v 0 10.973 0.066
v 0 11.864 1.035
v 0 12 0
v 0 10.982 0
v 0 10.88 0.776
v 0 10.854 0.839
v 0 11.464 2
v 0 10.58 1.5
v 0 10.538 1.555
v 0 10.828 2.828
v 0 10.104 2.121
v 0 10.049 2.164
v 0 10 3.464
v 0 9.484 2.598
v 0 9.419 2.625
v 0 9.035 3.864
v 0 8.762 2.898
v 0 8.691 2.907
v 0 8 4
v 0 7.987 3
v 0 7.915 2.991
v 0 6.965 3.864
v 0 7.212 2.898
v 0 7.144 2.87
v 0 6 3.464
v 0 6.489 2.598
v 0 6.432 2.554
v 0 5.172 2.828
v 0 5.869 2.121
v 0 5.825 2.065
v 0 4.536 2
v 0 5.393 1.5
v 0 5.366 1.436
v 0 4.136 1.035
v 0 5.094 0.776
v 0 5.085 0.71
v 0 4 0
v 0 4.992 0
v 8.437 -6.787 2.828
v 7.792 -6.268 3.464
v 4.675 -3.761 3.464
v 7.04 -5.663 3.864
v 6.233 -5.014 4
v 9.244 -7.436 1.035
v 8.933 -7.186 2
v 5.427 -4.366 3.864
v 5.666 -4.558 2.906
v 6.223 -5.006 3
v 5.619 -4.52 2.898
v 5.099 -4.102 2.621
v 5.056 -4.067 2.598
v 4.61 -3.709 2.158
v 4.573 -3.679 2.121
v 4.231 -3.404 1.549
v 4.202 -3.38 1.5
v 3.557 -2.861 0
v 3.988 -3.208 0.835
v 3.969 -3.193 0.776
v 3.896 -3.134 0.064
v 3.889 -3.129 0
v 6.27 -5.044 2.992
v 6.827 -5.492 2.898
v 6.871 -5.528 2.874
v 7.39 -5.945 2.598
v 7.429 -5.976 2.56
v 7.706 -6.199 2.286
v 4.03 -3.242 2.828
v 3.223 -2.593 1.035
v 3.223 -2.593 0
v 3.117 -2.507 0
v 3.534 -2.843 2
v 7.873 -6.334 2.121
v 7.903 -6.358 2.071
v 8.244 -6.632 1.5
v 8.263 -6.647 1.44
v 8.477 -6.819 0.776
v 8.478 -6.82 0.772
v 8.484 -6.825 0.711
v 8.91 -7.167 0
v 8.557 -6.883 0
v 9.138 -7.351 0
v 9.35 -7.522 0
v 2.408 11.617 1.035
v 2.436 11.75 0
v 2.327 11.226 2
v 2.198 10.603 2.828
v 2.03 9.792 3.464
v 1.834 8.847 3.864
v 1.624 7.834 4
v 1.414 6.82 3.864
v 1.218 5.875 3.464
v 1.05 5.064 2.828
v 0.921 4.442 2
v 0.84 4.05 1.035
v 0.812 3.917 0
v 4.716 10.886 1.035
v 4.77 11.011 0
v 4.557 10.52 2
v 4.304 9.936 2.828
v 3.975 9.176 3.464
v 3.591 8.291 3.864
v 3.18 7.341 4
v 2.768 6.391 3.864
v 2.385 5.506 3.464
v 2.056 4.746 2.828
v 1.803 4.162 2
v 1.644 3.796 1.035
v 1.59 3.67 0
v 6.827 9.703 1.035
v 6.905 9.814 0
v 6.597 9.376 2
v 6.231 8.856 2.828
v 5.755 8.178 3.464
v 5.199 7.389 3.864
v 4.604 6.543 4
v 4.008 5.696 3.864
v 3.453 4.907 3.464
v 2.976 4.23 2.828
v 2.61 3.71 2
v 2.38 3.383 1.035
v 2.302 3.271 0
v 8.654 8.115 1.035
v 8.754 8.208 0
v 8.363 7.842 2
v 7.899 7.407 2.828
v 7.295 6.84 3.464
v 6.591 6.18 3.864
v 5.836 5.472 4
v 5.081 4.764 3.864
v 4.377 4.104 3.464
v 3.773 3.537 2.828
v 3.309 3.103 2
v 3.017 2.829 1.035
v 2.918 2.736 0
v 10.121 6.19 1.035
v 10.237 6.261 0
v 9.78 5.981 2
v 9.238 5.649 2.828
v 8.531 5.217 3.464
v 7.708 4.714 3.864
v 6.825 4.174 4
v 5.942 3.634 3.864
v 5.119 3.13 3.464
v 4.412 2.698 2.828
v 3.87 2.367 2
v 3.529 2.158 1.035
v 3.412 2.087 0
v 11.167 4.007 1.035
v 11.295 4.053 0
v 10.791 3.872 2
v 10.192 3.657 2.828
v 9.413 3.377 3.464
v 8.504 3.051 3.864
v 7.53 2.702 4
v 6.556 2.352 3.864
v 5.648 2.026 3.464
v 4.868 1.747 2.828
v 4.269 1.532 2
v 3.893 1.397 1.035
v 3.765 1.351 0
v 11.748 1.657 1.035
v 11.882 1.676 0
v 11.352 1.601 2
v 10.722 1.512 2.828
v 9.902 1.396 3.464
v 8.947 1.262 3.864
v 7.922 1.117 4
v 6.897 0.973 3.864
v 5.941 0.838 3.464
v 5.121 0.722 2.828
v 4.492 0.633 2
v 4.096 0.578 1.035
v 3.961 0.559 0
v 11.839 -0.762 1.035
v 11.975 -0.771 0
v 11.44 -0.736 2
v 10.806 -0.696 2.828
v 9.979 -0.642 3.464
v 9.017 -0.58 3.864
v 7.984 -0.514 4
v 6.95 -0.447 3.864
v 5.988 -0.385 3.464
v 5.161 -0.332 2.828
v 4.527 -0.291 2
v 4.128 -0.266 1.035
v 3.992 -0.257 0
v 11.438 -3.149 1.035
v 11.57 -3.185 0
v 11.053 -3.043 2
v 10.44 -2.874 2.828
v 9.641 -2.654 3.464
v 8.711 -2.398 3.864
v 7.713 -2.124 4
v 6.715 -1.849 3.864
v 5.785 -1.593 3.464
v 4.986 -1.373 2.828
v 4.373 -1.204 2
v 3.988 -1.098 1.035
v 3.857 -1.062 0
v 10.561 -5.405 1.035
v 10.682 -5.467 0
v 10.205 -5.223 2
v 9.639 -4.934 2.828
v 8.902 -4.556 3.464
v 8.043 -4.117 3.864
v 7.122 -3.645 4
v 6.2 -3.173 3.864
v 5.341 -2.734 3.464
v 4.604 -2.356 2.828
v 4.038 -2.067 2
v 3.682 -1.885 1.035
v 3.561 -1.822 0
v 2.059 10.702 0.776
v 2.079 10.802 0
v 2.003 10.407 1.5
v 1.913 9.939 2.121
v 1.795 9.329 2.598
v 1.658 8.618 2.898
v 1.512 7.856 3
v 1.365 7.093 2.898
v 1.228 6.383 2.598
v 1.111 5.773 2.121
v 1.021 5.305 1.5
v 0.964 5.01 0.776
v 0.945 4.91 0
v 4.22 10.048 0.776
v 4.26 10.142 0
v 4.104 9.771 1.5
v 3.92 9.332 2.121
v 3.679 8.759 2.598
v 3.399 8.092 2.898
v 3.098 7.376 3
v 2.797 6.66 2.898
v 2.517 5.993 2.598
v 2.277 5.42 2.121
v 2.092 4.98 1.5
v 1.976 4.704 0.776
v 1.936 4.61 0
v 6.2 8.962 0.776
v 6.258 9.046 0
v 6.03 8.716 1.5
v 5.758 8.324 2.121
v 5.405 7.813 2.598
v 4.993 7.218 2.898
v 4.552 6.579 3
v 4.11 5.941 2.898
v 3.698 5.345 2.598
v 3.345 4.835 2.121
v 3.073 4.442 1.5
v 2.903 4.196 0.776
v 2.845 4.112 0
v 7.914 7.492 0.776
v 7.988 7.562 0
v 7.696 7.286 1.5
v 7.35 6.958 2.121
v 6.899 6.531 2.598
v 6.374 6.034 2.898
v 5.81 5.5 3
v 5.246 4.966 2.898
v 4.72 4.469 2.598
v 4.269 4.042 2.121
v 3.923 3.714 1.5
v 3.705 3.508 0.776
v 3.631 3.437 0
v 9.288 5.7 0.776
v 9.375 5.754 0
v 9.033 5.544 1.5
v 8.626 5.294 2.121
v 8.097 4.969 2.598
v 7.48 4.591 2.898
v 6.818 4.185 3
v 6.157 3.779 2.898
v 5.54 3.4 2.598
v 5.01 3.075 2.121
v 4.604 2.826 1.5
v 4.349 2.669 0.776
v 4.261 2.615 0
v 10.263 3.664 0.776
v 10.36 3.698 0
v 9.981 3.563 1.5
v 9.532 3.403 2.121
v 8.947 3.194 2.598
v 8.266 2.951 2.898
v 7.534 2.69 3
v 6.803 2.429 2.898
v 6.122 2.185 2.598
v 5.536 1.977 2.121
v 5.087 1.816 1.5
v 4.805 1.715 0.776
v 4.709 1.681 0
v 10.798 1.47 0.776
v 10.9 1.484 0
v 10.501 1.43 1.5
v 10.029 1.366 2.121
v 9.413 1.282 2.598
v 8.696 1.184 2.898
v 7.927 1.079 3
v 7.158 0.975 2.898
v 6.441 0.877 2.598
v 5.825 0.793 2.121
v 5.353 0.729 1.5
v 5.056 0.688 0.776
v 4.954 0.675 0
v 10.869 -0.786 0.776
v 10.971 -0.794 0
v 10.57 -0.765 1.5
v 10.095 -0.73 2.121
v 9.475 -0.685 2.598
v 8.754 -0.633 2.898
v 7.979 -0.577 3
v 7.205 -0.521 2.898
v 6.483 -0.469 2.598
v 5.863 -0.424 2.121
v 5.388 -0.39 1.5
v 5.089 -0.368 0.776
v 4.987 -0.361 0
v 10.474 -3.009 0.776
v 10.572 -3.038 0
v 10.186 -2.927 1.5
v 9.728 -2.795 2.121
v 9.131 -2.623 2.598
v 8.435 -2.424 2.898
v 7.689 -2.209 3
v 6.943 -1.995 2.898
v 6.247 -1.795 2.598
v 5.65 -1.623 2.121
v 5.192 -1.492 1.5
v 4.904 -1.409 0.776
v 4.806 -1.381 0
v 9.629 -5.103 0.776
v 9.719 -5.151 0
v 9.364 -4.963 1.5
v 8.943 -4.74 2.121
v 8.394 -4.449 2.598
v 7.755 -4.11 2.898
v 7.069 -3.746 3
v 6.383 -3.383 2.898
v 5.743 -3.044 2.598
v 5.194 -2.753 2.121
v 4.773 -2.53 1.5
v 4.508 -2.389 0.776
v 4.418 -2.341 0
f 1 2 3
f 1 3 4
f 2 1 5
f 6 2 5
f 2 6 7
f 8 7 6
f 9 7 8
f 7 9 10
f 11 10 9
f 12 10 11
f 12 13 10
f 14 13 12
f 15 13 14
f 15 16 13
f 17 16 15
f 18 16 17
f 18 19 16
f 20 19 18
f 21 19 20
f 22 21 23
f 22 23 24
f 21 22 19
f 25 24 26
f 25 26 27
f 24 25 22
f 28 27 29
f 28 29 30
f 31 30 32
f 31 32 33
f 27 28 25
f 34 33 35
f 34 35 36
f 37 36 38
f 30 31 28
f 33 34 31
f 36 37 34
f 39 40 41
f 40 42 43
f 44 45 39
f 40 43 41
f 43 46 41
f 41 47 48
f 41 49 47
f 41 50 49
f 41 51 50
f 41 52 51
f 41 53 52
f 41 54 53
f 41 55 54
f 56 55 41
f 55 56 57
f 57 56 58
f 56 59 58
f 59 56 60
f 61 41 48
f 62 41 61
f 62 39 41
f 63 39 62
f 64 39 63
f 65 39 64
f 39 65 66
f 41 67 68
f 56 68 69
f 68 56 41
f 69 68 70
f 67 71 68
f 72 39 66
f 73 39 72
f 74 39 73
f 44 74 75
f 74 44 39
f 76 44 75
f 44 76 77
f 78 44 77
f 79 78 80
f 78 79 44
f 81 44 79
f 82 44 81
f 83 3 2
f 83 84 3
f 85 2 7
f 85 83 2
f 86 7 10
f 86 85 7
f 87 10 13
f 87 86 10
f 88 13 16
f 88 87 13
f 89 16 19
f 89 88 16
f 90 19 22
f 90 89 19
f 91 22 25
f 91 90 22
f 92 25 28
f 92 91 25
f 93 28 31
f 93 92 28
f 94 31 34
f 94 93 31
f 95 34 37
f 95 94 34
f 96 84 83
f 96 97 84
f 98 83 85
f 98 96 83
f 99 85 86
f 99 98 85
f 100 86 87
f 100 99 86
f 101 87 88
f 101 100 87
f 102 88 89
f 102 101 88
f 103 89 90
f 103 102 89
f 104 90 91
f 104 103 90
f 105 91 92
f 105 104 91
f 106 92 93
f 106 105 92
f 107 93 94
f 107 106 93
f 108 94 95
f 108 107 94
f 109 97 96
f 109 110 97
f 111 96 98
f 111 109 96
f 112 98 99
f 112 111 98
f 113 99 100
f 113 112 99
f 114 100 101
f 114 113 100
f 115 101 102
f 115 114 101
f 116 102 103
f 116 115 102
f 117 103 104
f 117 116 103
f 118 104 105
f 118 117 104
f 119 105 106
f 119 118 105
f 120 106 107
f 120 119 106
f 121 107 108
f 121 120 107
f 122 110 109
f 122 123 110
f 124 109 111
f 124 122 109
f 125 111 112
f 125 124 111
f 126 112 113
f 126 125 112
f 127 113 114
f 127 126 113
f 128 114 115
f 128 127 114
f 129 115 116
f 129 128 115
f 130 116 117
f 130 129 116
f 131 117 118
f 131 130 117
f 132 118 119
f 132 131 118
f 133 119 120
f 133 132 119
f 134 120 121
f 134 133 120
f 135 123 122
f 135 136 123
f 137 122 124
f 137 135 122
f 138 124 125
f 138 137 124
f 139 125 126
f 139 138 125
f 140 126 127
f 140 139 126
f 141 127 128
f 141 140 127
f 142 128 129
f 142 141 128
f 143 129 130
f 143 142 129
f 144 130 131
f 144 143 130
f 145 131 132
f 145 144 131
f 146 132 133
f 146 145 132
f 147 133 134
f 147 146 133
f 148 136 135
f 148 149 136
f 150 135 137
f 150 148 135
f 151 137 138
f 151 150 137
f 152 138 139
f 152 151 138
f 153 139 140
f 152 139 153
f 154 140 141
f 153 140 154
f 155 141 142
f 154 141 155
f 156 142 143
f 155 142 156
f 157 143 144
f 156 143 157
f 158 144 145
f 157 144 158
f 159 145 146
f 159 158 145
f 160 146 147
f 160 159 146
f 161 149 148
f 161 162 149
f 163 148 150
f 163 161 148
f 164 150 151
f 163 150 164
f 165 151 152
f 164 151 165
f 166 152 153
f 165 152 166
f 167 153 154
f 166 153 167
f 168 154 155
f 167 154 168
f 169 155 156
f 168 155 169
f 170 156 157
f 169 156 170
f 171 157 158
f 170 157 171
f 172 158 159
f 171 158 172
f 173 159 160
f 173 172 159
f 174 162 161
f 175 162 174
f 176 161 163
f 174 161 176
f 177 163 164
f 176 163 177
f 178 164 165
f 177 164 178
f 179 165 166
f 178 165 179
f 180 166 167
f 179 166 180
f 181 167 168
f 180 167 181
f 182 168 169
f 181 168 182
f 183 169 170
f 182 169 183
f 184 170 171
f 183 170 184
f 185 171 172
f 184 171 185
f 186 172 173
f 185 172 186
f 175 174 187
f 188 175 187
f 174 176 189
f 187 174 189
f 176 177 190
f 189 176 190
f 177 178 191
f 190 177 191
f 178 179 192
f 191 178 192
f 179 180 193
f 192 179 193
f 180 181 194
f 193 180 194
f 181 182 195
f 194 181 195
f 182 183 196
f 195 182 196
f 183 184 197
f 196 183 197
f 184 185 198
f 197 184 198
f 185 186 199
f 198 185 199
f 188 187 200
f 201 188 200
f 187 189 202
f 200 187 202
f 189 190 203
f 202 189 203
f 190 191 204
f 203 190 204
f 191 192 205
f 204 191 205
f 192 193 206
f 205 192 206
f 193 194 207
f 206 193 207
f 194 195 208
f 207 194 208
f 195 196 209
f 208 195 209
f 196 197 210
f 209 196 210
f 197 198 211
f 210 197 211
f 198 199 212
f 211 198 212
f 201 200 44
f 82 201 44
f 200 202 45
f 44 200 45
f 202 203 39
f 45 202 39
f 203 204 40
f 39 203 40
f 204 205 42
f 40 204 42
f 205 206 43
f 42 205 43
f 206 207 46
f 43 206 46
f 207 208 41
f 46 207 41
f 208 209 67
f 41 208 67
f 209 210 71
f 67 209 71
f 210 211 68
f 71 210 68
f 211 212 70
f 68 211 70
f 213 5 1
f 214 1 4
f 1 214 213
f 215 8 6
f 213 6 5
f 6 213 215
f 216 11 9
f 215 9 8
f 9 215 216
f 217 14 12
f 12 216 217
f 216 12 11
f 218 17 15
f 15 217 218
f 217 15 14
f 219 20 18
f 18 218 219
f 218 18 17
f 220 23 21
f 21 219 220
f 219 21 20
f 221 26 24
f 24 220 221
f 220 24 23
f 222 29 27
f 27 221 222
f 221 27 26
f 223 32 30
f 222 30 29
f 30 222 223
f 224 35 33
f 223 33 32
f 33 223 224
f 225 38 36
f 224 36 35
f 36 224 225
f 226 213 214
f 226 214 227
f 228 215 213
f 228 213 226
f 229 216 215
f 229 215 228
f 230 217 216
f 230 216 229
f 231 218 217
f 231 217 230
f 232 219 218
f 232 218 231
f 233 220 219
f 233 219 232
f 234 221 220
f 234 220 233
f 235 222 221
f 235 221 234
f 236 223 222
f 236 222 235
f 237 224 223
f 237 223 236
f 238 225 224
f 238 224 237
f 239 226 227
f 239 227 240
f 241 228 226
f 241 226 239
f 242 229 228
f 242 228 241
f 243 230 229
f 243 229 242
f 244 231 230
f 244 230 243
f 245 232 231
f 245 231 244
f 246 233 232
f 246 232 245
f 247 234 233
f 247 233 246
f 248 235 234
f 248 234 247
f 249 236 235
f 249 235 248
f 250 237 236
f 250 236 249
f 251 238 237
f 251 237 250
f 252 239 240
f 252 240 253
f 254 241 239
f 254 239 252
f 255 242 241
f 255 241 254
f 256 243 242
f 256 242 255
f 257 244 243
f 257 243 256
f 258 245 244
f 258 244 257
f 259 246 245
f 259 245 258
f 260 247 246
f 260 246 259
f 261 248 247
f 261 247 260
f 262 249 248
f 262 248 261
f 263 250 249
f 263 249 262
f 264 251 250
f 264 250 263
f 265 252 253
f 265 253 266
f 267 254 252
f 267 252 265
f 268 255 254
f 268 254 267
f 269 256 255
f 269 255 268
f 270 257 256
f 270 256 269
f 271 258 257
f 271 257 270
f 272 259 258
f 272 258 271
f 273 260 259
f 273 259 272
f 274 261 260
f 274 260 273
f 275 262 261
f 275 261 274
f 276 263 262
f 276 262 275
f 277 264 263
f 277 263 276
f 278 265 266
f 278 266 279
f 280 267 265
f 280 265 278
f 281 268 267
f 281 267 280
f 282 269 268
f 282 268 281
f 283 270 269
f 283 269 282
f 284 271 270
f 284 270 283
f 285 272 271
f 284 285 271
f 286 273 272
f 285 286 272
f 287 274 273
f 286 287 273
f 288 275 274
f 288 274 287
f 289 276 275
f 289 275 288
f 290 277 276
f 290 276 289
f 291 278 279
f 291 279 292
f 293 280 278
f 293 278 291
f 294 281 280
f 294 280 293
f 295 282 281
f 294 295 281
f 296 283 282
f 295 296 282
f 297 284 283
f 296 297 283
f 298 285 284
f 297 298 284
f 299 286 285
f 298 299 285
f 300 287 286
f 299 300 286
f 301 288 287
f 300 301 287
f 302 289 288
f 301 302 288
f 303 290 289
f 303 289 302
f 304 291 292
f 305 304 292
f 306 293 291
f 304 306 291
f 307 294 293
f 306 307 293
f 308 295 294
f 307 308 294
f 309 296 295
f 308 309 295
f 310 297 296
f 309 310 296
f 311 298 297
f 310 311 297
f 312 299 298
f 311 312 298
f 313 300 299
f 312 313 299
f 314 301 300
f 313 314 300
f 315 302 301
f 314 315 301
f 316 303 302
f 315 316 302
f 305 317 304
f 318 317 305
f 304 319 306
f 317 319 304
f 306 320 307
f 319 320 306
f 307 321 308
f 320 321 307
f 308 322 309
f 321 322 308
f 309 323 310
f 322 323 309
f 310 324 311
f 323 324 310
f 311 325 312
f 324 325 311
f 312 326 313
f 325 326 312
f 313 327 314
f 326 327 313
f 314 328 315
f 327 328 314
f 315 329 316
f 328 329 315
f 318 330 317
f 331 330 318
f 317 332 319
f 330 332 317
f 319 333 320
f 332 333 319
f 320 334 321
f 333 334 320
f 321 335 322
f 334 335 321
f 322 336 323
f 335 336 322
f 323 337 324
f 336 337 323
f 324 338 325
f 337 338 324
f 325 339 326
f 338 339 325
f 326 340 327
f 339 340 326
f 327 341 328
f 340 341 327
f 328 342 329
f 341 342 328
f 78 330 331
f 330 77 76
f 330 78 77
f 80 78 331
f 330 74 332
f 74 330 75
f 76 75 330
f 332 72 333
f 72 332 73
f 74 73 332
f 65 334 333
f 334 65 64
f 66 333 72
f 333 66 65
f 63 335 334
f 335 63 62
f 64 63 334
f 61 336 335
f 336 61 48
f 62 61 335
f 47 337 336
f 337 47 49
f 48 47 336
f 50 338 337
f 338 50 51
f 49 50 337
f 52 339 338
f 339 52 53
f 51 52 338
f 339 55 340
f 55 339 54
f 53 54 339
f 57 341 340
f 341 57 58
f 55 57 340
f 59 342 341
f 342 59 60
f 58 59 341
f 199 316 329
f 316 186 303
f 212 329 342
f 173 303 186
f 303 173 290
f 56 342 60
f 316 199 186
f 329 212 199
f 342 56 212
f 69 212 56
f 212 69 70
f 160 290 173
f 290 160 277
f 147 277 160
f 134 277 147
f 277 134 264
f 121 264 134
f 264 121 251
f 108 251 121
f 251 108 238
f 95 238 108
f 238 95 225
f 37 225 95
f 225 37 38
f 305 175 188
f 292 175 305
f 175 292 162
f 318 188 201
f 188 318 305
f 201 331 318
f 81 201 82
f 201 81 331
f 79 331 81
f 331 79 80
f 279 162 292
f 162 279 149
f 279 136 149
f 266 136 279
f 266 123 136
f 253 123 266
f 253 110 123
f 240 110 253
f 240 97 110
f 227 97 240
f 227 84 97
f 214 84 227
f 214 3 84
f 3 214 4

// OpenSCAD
// file: ../build_environments.scad
// build_environments.scad: modules to build level sections
//

module pool(diameter=10.0, wall_height=2.0, step_width=3.0, connections=[])
{
    difference() {
        union() {
        difference() {
            cylinder(h=0.5,r1=diameter+step_width,r2=diameter+step_width,$fn=48);
            translate([0,0,-0.1])
                cylinder(h=0.7,r1=diameter,r2=diameter,$fn=48);
        }
        difference() {
            cylinder(h=wall_height,r1=diameter+step_width+1.0,r2=diameter+step_width+1.0,$fn=48);
            translate([0,0,-0.1])
                cylinder(h=wall_height+0.2,r1=diameter+step_width,r2=diameter+step_width,$fn=48);
        }
        }
    
        for (c = connections)
        {
            rotate([0,90,0]) {
                angle = atan2(c[1],c[0]);
                rotate([-angle,0,0]) {
                    cylinder(h=diameter+5.0,r1=c[2],r2=c[2],$fn=48);
                }
            }
        }
    }
}

module straight(length=10.0, width=2.0, dy1=0.0, dy2=0.0, dz=0.0)
{
    dims = [0, 0, 0, 0, 0, (dz/length)];
    matrix = [
        [ 1, dims[0], dims[1], 0 ],
        [ dims[2], 1, dims[4], 0 ],
        [ dims[5], dims[3], 1, 0 ],
        [ 0, 0, 0, 1 ]
    ];
    multmatrix(matrix)
    difference() {
        translate([dy1,0,0])
        union() {
            rotate([0,90,0]) {
                difference() {
                    cylinder(h=(length-dy1-dy2),r1=width+1.0,r2=width+1.0,$fn=24);
                    translate([0,0,-0.1])
                        cylinder(h=(length-dy1-dy2+0.2),r1=width,r2=width,$fn=24);
                }
                difference() {
                    cylinder(h=1.0,r1=width+2.0,r2=width+2.0,$fn=24);
                    translate([0,0,-0.1])
                        cylinder(h=1.2,r1=width,r2=width,$fn=24);
                }
                translate([0,0,(length-dy1-dy2)-1.0]) {
                    difference() {
                        cylinder(h=1.0,r1=width+2.0,r2=width+2.0,$fn=24);
                        translate([0,0,-0.1])
                            cylinder(h=1.2,r1=width,r2=width,$fn=24);
                    }
                }
            }
        }
        translate([0,0,-(2*width+4.0)/2])
            cube([3*length,3*length,2*width+4.0],center=true);
    }
}

module curve(p0=[0,0], center=[0,0], dir=1, angle=0.0, width=2.0)
{
    radius = sqrt((p0[0]-center[0])*(p0[0]-center[0]) + (p0[1]-center[1])*(p0[1]-center[1]));
    if (dir == 0) {
        difference() {
            rotate([0,0,-90])
            difference() {
                rotate_extrude(angle = angle, convexity = 10, $fn=32)
                    translate([radius, 0, 0])
                        circle(r = width+1.0,$fn=24);
                rotate([0,0,-1.0])
                    rotate_extrude(angle = angle+2.0, convexity = 10, $fn=32)
                        translate([radius, 0, 0])
                            circle(r = width,$fn=24);
            }
            translate([0,0,-(2*width+4.0)/2])
                cube([5*radius,5*radius,2*width+4.0],center=true);
        }
    }
    else {
        difference() {
            rotate([0,0,90])
            difference() {
                rotate_extrude(angle = -angle, convexity = 10, $fn=32)
                    translate([radius, 0, 0])
                        circle(r = width+1.0,$fn=24);
                rotate([0,0,1.0])
                    rotate_extrude(angle = -angle-2.0, convexity = 10, $fn=32)
                        translate([radius, 0, 0])
                            circle(r = width,$fn=24);
            }
            translate([0,0,-(2*width+4.0)/2])
                cube([5*radius,5*radius,2*width+4.0],center=true);
        }
    }

}

// test pool
//pool(diameter=12.0000, wall_height=3.0000, step_width=3.0000, connections=[[0.0000,-26.0000,2.0000], [23.6074,0.0000,2.0000]]);

// test straight, slope
//straight(length=26.0000, width=2.0000, dy1=11.8322, dy2=6.7082, dz=0.0000);
//straight(length=29.1549, width=12.0000, dy1=0.0000, dy2=0.0000, dz=-15.0000);

// test curve
//curve(p0=[23.6074, 0.0000], center=[23.6074, 5.0000], dir=0, angle=60.1011, width=2.0000);
//curve(p0=[33.6426, 12.4219], center=[37.9771, 9.9295], dir=1, angle=120.4627, width=2.0000);
// main file
use <../build_environments.scad>;
curve(p0=[41.5769, -7.5983], center=[35.5770, -12.8900], dir=1, angle=128.8143, width=3.0000);
